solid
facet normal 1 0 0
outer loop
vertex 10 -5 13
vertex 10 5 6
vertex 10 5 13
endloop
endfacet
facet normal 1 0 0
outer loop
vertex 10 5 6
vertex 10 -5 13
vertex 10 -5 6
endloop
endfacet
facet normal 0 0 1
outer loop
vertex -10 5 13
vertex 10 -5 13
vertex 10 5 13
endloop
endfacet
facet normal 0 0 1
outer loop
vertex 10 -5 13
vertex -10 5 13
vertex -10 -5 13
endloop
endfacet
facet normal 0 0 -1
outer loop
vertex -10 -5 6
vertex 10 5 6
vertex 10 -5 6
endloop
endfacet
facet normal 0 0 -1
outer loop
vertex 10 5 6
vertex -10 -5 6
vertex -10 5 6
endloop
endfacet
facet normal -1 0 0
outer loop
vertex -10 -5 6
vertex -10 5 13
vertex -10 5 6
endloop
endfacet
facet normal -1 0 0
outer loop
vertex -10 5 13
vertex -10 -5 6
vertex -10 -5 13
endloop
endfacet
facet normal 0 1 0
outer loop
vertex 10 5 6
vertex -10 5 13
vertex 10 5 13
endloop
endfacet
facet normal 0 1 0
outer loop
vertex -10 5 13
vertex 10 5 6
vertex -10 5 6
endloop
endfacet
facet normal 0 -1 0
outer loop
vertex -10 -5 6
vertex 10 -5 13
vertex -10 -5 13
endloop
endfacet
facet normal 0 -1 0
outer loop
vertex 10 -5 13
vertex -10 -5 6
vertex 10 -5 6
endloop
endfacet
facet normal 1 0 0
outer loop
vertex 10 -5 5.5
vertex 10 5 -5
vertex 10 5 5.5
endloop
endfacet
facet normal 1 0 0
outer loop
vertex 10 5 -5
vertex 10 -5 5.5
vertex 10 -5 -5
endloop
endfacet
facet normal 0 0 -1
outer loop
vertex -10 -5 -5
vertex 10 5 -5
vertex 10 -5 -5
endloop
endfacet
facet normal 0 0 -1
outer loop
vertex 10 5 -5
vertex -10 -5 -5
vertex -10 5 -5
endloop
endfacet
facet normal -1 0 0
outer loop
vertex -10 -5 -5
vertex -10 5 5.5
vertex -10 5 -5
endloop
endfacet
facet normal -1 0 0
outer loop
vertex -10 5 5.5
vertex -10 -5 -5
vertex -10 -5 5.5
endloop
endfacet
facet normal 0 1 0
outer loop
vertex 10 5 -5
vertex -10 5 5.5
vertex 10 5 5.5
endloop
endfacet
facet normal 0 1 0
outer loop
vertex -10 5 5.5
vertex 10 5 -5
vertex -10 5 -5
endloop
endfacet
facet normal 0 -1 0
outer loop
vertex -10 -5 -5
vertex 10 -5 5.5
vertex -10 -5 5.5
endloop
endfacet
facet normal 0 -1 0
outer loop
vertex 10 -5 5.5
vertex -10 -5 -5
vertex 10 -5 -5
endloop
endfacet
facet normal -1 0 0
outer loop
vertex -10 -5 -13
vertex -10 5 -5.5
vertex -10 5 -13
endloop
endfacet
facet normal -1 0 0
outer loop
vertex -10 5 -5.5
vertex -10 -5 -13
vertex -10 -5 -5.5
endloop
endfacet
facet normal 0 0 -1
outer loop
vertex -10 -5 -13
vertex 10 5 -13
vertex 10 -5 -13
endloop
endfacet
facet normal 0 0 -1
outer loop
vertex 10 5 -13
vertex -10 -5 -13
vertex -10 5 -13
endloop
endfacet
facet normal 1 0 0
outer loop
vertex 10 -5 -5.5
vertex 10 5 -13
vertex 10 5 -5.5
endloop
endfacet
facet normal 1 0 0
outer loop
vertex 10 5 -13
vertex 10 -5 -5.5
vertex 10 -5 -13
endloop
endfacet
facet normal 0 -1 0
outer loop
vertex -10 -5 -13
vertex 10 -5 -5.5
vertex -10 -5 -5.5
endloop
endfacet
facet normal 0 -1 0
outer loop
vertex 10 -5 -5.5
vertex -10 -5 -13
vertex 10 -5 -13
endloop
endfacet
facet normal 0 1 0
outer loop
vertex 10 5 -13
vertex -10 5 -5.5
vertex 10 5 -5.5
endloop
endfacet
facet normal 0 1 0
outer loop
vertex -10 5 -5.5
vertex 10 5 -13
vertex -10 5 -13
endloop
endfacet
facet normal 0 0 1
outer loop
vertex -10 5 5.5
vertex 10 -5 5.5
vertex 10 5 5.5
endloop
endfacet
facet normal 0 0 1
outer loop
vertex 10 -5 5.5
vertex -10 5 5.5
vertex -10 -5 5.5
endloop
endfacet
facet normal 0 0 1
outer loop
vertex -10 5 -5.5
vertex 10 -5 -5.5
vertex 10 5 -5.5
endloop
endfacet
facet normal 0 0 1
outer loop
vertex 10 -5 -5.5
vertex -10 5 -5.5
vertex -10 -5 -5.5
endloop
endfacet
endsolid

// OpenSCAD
// Parameters for dimensions
central_block_width = 20;
central_block_height = 10;
central_block_depth = 10;
v_notch_depth = 9; // Deepened depth for a more pronounced V-shaped notch
v_notch_width = 10;

side_block_width = 20;
side_block_height = 7; // Reduced thickness for side block
side_block_depth = 10;
side_v_notch_depth = 8; // Sharpened and deepened V-shaped notch for side block
side_v_notch_width = 10;

spacer_block_width = 20;
spacer_block_height = 1; // Reduced thickness for spacer block
spacer_block_depth = 10;

// Function to create a block with a V-shaped notch
module v_notched_block(width, height, depth, notch_width, notch_depth) {
    difference() {
        cube([width, depth, height], center = true);
        translate([-notch_width / 2, -depth / 2, -height / 2])
            polyhedron(
                points = [
                    [0, 0, 0],
                    [notch_width, 0, 0],
                    [notch_width / 2, 0, notch_depth]
                ],
                faces = [[0, 1, 2]]
            );
    }
}

// Central block
module central_block() {
    v_notched_block(
        central_block_width,
        central_block_height,
        central_block_depth,
        v_notch_width,
        v_notch_depth
    );
}

// Side block
module side_block() {
    v_notched_block(
        side_block_width,
        side_block_height,
        side_block_depth,
        side_v_notch_width,
        side_v_notch_depth
    );
}

// Spacer block
module spacer_block() {
    cube([spacer_block_width, spacer_block_depth, spacer_block_height], center = true);
}

// Assembly
module flexible_coupling() {
    translate([0, 0, side_block_height / 2 + spacer_block_height + central_block_height / 2])
        side_block();
    translate([0, 0, central_block_height / 2])
        spacer_block();
    translate([0, 0, 0])
        central_block();
    translate([0, 0, -central_block_height / 2 - spacer_block_height])
        spacer_block();
    translate([0, 0, -central_block_height / 2 - spacer_block_height - side_block_height / 2])
        rotate([0, 0, 180])
        side_block();
}

// Render the model
flexible_coupling();
